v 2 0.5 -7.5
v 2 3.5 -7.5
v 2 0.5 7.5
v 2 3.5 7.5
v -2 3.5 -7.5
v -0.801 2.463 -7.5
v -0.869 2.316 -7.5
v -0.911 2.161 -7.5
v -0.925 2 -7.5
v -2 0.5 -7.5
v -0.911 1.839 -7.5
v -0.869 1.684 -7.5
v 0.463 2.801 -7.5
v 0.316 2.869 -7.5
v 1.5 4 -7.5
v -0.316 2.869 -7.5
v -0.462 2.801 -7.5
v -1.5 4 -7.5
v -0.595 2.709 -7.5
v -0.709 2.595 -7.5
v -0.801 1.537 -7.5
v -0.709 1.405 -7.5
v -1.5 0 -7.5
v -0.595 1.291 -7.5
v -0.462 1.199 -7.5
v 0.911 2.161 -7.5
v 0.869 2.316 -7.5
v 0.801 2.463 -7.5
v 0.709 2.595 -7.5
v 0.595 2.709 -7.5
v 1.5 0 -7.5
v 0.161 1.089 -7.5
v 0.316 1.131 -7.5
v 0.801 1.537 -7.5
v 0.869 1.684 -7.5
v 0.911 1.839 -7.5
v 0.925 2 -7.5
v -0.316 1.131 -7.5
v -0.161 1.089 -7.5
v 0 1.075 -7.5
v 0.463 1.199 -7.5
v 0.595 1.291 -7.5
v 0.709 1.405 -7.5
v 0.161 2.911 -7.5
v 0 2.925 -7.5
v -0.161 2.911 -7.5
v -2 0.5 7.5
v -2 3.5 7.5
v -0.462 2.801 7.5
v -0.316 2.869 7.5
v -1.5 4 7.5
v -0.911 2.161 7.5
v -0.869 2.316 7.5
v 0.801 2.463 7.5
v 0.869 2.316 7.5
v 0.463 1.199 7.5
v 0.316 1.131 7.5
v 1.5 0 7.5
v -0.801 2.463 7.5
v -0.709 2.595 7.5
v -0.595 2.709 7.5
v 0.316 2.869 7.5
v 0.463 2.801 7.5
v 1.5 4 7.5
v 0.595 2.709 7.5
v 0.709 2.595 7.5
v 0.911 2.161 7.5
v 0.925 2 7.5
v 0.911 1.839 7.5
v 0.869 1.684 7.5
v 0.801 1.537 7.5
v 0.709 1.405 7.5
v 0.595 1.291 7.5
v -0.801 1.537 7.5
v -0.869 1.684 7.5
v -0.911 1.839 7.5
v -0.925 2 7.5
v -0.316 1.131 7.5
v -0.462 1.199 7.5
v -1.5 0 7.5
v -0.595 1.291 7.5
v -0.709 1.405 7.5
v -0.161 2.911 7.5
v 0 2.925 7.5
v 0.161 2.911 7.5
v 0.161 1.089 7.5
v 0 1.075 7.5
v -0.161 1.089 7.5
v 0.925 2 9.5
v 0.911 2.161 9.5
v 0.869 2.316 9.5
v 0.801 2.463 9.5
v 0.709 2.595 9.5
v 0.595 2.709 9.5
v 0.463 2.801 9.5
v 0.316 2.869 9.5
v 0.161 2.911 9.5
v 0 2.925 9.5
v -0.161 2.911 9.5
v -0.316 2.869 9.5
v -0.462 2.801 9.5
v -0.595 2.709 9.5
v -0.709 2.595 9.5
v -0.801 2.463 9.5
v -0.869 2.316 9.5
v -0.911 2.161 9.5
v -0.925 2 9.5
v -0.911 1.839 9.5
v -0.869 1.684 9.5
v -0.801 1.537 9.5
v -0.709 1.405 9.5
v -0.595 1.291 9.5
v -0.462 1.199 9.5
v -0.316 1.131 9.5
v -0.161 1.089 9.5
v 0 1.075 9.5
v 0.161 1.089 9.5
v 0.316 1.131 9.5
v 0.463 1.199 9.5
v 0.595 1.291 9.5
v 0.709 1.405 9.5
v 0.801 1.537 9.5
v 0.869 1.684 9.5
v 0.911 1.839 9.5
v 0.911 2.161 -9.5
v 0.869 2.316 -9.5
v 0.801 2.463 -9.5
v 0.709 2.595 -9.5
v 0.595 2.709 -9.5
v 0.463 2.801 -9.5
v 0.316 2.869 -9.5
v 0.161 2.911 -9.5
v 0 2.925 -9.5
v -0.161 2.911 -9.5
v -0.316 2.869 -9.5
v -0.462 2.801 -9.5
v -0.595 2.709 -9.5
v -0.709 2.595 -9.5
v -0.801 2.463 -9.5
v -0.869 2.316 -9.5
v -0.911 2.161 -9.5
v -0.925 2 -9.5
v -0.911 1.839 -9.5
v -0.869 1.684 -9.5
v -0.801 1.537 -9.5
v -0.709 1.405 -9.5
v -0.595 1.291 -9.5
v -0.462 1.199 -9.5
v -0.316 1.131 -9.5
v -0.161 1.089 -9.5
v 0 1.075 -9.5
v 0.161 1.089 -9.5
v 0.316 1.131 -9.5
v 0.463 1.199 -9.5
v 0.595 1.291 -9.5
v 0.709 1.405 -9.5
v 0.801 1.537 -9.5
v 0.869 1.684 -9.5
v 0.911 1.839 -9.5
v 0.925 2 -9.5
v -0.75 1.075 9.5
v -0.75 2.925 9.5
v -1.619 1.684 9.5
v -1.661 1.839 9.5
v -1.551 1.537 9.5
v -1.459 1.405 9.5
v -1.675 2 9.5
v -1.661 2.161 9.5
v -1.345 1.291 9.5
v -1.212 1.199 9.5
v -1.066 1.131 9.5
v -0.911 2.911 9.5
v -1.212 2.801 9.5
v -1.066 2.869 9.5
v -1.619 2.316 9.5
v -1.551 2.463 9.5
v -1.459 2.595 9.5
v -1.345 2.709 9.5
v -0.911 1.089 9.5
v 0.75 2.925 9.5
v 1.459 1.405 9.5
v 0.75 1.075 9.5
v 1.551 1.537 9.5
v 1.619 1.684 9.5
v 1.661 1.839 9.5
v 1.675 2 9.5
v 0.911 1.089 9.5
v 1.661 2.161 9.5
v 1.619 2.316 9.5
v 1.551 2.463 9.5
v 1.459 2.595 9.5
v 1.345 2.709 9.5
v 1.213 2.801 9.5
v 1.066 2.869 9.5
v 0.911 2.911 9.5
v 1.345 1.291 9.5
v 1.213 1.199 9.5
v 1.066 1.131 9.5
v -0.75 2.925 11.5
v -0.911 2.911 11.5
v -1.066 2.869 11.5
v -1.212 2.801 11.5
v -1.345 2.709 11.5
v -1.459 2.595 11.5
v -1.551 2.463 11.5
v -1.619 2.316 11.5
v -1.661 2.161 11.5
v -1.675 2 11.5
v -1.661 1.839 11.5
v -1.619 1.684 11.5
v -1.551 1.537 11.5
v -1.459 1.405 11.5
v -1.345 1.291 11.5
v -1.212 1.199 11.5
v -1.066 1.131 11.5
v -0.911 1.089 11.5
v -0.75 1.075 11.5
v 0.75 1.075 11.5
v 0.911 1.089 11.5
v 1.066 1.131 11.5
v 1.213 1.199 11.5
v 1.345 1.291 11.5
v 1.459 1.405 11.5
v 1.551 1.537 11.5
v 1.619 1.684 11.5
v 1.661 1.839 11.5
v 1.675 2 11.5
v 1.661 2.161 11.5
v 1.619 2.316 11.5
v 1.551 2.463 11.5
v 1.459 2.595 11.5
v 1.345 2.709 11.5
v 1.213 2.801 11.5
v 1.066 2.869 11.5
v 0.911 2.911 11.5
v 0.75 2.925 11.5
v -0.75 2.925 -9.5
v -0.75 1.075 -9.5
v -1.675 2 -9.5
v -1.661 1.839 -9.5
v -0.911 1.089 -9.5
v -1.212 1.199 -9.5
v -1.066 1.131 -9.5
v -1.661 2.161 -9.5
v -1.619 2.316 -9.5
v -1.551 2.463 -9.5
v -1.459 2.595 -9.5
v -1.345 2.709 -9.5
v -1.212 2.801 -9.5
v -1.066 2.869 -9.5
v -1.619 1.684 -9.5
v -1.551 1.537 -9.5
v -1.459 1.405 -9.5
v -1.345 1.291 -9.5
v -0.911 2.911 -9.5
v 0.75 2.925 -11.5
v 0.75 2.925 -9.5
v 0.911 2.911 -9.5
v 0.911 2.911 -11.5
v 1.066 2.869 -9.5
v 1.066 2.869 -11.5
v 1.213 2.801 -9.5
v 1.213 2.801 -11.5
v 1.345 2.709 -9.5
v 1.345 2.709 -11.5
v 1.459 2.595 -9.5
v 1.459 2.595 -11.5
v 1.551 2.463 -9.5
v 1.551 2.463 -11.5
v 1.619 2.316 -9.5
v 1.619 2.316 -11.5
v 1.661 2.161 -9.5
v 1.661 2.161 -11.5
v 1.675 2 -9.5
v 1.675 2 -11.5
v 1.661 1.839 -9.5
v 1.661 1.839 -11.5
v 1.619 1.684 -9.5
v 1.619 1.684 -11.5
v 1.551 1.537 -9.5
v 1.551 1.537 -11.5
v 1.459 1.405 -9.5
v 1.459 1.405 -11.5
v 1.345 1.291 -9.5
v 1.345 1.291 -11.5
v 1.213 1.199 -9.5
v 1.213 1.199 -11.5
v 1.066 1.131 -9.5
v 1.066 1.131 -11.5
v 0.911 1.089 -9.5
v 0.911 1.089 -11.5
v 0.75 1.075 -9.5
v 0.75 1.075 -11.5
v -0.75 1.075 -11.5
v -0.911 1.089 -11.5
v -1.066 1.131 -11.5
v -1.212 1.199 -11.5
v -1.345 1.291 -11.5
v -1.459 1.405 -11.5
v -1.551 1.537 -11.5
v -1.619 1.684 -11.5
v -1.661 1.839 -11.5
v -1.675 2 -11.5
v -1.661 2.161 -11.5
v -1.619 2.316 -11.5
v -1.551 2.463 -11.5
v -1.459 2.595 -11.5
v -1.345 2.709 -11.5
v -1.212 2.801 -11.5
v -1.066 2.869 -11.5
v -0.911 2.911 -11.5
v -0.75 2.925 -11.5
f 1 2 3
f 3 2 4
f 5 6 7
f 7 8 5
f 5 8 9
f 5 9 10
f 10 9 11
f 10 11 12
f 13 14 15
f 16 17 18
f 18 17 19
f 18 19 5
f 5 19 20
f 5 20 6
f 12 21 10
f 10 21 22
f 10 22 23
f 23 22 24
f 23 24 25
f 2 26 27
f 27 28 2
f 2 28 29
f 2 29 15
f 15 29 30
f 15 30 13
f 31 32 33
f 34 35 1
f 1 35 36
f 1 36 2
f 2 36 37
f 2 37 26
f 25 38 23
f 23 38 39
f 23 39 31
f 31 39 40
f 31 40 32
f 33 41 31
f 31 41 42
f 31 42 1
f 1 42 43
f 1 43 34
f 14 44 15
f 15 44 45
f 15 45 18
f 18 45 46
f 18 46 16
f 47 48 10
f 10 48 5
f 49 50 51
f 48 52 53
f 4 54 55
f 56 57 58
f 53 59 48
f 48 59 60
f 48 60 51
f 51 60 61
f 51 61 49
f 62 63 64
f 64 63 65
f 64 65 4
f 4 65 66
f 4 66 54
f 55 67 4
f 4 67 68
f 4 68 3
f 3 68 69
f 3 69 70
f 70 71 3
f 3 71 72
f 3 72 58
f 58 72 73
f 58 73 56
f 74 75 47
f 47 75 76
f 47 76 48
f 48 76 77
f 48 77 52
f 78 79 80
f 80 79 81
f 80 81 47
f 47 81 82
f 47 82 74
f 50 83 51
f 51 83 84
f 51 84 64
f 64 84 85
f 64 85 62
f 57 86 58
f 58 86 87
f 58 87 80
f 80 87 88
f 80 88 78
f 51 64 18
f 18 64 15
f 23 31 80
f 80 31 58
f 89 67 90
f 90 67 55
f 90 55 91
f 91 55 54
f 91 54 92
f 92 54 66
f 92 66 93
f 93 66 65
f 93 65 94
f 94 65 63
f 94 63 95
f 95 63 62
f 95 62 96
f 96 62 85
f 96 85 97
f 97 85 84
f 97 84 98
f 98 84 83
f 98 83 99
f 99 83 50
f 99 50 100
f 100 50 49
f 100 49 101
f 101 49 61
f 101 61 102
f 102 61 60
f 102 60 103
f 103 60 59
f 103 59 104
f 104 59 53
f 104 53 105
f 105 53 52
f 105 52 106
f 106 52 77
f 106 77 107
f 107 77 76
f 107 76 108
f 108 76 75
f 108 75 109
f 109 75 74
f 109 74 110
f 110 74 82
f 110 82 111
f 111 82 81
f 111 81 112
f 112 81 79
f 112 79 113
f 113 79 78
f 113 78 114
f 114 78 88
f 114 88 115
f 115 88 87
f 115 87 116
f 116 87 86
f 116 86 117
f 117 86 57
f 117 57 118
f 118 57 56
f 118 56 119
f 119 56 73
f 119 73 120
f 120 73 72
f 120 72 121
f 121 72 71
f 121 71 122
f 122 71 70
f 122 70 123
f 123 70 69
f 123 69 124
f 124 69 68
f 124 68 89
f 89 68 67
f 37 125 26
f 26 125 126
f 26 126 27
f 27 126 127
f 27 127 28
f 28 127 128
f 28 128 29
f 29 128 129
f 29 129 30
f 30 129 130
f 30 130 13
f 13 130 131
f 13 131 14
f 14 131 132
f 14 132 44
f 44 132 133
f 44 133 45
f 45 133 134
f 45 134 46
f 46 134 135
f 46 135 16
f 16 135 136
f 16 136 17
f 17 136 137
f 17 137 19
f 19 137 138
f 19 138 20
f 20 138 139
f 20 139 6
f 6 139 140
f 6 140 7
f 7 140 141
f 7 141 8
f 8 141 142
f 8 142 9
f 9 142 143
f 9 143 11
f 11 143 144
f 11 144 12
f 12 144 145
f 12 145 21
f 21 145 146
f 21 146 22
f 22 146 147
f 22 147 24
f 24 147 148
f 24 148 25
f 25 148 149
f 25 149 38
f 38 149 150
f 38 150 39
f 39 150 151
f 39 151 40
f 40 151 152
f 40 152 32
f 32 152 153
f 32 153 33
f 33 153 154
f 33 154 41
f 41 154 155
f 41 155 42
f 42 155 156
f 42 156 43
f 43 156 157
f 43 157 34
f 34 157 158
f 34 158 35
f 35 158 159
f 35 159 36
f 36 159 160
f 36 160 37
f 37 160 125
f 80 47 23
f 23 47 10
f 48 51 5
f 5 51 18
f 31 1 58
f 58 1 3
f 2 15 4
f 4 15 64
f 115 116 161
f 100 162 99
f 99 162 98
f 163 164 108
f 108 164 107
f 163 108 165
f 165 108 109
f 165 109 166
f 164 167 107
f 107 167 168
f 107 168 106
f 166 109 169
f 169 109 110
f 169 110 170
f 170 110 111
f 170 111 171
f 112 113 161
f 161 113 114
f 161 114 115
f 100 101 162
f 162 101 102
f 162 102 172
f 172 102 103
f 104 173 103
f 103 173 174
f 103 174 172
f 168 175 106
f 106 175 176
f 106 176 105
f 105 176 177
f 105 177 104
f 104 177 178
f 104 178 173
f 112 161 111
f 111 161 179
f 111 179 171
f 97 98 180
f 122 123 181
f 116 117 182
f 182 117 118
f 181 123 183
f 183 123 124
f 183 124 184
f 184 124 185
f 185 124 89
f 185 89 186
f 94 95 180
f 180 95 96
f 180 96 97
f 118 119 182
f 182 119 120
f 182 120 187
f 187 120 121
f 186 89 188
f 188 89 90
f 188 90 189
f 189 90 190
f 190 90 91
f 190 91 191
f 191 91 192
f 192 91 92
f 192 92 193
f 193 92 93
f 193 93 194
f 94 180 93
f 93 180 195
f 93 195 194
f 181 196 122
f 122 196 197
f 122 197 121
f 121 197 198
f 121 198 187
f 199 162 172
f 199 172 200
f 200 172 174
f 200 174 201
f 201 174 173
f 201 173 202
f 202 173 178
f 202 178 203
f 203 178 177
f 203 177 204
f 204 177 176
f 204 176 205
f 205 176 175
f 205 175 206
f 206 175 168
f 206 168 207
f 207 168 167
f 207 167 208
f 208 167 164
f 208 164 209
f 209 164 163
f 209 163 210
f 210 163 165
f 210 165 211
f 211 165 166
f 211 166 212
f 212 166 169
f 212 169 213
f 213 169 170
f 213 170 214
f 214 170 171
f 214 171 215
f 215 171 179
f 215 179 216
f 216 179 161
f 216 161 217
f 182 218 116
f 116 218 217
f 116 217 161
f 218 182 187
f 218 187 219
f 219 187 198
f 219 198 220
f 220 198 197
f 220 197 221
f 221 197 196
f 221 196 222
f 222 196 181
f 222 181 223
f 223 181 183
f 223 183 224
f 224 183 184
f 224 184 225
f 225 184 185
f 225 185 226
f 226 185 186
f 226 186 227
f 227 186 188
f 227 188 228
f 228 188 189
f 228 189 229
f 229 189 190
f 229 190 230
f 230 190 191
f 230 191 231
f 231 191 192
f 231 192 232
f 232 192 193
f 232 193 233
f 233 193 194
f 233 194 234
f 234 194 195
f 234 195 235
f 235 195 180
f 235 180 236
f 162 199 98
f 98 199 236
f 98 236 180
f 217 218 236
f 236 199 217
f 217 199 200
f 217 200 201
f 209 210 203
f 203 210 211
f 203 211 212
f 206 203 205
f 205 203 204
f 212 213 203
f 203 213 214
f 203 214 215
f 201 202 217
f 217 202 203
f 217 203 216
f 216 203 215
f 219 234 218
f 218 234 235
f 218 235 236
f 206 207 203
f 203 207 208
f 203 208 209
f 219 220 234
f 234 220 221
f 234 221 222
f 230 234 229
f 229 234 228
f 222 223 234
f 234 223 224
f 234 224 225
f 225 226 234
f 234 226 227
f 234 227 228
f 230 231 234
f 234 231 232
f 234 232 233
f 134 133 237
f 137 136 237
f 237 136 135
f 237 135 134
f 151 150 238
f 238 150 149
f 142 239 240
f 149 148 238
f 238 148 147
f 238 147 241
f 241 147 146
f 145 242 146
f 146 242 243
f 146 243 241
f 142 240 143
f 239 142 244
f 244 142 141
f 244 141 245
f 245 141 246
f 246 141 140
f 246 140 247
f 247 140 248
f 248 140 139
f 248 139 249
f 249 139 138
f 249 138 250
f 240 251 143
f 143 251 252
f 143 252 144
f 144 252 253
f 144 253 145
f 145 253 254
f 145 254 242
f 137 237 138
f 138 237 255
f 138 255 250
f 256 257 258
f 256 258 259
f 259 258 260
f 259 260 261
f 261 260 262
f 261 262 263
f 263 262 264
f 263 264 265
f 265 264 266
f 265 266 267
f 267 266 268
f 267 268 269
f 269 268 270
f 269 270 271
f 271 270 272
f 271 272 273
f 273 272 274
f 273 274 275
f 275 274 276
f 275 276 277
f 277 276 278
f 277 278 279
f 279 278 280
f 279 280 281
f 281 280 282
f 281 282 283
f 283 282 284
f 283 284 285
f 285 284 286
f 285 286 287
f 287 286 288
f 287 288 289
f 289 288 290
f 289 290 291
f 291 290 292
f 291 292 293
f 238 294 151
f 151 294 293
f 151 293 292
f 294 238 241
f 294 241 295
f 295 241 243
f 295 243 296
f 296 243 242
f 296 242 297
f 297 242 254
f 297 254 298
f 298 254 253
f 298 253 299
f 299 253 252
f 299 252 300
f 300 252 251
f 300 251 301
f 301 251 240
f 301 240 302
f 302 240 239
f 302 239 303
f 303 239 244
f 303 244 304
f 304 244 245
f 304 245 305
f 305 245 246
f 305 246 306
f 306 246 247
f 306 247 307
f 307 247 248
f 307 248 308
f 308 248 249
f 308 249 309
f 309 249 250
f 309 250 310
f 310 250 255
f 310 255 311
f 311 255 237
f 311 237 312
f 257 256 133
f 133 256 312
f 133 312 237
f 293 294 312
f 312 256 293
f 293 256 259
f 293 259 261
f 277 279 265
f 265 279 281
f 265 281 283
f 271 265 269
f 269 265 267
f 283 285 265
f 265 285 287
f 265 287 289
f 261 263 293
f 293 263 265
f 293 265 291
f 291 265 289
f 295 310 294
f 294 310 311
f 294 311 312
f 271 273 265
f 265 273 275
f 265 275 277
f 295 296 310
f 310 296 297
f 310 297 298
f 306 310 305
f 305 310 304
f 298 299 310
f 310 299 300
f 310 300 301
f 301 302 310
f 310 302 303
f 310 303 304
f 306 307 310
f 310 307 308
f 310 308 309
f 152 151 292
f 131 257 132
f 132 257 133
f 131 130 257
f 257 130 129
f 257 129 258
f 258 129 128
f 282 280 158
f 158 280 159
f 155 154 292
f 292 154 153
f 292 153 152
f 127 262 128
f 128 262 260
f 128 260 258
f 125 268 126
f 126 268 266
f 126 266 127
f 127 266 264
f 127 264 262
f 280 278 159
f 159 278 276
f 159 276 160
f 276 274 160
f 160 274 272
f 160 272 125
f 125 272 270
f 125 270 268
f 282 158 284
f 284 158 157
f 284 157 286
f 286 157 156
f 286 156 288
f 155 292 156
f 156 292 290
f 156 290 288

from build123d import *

# Parameters (mm, degrees)
SKETCH1_W                = 4
SKETCH1_H                = 15
BOSS_EXTRUDE1_DEPTH      = 4
SKETCH2_R                = 0.925
BOSS_EXTRUDE2_DEPTH      = 2
BOSS_EXTRUDE2_DEPTH_BACK = 17
CHAMFER1_SIZE            = 0.5
BOSS_EXTRUDE3_DEPTH      = 2
BOSS_EXTRUDE4_DEPTH      = 2


with BuildPart() as part:
    # Sketch1 → Boss-Extrude1 (new body)
    with BuildSketch(Plane(origin=(0, 0, 0), x_dir=(1, 0, 0), z_dir=(0, 1, 0))):
        Rectangle(SKETCH1_W, SKETCH1_H)
    extrude(amount=BOSS_EXTRUDE1_DEPTH)

    # Sketch2 → Boss-Extrude2 (add, two sides)
    with BuildSketch(Plane.XY.offset(7.5)) as boss_extrude2_sk:
        with Locations((0, 2)):
            Circle(SKETCH2_R)
    extrude(amount=BOSS_EXTRUDE2_DEPTH)
    extrude(boss_extrude2_sk.sketch, amount=-BOSS_EXTRUDE2_DEPTH_BACK)

    # Chamfer1
    chamfer1_edges = [part.edges().sort_by_distance(p)[0] for p in [
        (-2, 4, 0),
        (2, 4, 0),
        (-2, 0, 0),
        (2, 0, 0),
    ]]
    chamfer(chamfer1_edges, length=CHAMFER1_SIZE)

    # Sketch3 → Boss-Extrude3 (add)
    with BuildSketch(Plane.XY.offset(9.5)):
        with BuildLine():
            Line((-0.75, 2.925), (0.75, 2.925))
            ThreePointArc((0.75, 2.925), (1.675, 2), (0.75, 1.075))
            Line((0.75, 1.075), (-0.75, 1.075))
            ThreePointArc((-0.75, 1.075), (-1.675, 2), (-0.75, 2.925))
        make_face()
    extrude(amount=BOSS_EXTRUDE3_DEPTH)

    # Sketch4 → Boss-Extrude4 (add)
    with BuildSketch(Plane(origin=(0, 0, -9.5), x_dir=(-1, 0, 0), z_dir=(0, 0, -1))):
        with BuildLine():
            Line((-0.75, 2.925), (0.75, 2.925))
            ThreePointArc((0.75, 2.925), (1.675, 2), (0.75, 1.075))
            Line((0.75, 1.075), (-0.75, 1.075))
            ThreePointArc((-0.75, 1.075), (-1.675, 2), (-0.75, 2.925))
        make_face()
    extrude(amount=BOSS_EXTRUDE4_DEPTH)


solid = part.part
